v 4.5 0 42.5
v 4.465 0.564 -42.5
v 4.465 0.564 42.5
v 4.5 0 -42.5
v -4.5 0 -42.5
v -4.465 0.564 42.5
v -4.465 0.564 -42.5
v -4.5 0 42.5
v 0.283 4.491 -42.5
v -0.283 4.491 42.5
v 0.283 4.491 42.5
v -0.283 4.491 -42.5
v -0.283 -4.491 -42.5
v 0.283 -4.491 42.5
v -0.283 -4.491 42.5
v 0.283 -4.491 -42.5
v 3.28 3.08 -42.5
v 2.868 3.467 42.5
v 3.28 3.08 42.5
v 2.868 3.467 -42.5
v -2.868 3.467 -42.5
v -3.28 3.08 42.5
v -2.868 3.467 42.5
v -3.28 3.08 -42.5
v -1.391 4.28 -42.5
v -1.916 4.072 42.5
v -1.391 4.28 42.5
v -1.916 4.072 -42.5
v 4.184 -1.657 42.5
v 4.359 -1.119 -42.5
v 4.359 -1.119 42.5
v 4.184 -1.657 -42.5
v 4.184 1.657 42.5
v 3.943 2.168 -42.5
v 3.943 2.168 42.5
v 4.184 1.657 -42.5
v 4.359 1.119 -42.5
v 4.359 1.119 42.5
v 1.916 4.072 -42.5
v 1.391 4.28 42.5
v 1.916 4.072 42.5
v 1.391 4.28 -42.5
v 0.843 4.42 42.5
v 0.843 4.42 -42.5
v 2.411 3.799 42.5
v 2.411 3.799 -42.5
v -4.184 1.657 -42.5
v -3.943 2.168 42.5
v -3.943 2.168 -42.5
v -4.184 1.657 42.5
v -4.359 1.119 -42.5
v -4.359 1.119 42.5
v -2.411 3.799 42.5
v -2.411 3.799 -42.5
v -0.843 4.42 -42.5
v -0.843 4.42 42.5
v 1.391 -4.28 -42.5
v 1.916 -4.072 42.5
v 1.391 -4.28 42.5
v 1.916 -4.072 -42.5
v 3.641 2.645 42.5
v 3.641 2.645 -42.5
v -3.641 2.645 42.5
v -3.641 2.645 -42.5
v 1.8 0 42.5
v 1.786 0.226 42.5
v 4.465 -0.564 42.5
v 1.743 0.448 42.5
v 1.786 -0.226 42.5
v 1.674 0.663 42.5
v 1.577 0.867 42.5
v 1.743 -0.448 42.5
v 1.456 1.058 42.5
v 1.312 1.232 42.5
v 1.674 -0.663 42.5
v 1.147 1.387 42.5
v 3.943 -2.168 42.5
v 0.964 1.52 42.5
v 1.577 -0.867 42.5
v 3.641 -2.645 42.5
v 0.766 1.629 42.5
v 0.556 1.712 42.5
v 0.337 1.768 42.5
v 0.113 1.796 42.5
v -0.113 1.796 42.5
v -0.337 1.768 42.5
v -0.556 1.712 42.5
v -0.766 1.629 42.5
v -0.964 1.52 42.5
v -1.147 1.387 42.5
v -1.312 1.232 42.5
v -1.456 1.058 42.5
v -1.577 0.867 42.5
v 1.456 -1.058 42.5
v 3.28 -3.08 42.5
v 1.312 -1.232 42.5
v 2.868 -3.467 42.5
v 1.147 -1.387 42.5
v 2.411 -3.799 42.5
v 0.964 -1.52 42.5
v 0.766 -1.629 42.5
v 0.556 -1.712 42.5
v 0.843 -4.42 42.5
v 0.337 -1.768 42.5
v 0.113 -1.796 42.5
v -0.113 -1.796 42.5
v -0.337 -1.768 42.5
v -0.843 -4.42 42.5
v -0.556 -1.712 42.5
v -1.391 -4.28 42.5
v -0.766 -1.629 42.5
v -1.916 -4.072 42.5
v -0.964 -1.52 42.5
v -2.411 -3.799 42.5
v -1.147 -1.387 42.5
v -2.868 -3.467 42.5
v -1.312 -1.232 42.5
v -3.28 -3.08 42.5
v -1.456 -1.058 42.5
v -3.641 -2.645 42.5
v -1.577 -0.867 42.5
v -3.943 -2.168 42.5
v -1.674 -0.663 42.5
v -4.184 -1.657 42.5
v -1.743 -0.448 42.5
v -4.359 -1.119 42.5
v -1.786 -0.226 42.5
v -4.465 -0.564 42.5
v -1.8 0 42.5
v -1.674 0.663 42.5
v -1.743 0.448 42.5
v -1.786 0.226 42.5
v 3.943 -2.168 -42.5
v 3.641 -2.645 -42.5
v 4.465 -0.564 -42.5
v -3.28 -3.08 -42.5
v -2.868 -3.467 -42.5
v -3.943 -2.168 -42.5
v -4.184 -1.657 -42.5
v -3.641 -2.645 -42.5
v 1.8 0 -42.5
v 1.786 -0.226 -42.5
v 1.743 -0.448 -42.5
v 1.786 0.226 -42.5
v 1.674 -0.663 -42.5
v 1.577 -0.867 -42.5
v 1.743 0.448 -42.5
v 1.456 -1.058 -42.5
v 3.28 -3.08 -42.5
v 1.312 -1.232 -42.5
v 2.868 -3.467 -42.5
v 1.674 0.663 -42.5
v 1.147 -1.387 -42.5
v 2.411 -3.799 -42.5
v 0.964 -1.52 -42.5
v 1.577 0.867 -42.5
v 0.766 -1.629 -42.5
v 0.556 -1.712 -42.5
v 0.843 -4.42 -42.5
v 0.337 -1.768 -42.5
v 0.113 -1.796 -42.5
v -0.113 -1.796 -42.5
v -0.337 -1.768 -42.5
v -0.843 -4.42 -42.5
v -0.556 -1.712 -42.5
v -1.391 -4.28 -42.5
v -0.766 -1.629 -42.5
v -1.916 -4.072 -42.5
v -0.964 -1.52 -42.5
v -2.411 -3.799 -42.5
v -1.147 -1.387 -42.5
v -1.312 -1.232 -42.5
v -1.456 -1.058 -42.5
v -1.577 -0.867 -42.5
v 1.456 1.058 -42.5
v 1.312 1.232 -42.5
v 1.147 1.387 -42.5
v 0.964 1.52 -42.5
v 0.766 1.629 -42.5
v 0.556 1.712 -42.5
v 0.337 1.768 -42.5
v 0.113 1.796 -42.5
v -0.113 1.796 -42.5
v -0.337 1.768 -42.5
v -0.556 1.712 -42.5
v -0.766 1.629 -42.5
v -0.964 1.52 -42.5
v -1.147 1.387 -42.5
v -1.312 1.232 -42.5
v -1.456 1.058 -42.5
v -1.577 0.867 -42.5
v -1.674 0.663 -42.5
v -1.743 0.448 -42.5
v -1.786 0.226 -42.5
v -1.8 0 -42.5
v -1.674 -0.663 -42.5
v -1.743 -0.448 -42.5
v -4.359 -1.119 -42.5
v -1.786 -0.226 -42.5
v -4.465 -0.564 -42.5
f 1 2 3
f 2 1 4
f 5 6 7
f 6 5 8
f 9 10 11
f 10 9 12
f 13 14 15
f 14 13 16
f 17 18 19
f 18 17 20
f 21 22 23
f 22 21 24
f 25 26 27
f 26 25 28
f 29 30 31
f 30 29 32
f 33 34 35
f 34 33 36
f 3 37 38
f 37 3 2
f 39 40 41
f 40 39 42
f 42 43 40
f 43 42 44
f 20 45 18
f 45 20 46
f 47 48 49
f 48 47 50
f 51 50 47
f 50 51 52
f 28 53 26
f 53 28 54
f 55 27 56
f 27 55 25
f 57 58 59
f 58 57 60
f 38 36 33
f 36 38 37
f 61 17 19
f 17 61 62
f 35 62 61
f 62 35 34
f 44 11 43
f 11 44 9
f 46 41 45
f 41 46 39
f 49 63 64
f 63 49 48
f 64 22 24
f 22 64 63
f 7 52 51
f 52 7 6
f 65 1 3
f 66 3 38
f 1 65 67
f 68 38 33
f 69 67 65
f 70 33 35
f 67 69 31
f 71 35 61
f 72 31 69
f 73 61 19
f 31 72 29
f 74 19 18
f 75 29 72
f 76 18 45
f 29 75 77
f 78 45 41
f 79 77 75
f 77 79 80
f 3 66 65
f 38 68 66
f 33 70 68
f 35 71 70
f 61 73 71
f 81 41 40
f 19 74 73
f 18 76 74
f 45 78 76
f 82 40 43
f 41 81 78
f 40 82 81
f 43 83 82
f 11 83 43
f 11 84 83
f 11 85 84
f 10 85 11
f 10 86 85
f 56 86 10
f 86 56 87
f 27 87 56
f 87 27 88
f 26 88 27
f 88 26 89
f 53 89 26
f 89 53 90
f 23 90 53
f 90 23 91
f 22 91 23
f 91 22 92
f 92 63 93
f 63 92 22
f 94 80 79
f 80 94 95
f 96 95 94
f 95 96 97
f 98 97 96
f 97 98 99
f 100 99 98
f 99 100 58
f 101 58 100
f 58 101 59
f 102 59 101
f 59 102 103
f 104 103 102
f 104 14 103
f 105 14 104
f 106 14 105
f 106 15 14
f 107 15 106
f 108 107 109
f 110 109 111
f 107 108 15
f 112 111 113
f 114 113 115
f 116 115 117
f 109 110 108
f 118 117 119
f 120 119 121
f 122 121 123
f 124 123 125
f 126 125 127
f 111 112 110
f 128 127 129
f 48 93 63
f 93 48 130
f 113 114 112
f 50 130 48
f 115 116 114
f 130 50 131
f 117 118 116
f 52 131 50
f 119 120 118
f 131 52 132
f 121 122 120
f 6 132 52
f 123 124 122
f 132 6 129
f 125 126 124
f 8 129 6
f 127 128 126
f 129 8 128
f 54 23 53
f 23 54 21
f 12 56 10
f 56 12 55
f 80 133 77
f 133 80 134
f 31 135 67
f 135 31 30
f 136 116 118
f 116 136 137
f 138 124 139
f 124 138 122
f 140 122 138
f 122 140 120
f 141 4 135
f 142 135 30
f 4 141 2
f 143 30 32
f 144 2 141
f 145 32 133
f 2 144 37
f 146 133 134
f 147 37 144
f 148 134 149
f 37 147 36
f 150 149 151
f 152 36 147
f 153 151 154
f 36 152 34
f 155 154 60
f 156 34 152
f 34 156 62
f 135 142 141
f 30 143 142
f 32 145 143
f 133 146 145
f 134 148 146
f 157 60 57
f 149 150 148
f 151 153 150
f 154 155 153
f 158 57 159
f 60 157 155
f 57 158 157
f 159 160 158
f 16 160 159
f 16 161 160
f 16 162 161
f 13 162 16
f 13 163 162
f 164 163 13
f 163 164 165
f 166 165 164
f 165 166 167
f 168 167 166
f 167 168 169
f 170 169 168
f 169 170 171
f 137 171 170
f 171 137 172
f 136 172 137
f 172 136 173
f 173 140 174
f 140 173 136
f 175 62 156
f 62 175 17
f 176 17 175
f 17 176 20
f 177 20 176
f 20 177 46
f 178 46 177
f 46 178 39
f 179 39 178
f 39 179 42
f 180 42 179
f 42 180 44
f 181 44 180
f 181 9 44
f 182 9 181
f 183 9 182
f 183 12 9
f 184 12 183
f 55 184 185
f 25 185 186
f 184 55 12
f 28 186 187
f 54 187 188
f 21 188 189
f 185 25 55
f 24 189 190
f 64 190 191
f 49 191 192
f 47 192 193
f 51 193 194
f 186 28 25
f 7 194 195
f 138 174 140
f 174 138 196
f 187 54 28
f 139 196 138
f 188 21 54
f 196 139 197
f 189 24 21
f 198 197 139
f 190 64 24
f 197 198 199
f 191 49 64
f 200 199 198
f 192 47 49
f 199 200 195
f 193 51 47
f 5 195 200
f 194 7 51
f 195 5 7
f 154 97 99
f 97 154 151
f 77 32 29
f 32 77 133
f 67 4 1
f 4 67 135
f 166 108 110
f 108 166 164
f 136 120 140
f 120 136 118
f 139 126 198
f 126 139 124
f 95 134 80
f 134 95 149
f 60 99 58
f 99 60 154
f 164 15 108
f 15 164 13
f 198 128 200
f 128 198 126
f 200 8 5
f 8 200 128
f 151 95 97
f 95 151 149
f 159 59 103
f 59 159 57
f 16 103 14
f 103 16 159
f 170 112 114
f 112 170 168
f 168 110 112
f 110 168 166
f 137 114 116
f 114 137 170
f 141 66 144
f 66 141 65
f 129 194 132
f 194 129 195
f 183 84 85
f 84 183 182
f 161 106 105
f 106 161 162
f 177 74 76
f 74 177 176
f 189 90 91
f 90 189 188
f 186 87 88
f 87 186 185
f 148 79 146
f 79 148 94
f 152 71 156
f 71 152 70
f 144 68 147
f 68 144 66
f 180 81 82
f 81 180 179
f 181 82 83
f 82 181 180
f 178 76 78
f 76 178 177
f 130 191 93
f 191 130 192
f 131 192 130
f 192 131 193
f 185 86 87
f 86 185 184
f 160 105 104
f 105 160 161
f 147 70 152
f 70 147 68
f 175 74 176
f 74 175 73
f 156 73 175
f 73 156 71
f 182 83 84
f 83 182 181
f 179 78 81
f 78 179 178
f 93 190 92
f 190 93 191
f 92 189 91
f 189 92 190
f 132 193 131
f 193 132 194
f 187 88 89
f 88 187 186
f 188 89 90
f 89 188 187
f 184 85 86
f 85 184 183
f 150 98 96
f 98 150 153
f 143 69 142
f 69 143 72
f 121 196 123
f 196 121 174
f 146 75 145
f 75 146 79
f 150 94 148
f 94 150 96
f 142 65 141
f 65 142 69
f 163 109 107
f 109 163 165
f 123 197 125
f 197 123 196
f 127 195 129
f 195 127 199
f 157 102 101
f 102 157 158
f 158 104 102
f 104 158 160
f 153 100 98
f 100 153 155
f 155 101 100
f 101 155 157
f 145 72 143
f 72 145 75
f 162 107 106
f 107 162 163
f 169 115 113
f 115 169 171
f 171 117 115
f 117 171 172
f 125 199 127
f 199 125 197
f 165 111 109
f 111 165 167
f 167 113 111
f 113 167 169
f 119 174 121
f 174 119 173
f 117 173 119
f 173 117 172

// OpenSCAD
$fn = 50;


difference() {
	union() {
		translate(v = [0, 0, -42.5000000000]) {
			cylinder(h = 85, r = 4.5000000000);
		}
	}
	union() {
		translate(v = [0, 0, -100.0000000000]) {
			cylinder(h = 200, r = 1.8000000000);
		}
	}
}
